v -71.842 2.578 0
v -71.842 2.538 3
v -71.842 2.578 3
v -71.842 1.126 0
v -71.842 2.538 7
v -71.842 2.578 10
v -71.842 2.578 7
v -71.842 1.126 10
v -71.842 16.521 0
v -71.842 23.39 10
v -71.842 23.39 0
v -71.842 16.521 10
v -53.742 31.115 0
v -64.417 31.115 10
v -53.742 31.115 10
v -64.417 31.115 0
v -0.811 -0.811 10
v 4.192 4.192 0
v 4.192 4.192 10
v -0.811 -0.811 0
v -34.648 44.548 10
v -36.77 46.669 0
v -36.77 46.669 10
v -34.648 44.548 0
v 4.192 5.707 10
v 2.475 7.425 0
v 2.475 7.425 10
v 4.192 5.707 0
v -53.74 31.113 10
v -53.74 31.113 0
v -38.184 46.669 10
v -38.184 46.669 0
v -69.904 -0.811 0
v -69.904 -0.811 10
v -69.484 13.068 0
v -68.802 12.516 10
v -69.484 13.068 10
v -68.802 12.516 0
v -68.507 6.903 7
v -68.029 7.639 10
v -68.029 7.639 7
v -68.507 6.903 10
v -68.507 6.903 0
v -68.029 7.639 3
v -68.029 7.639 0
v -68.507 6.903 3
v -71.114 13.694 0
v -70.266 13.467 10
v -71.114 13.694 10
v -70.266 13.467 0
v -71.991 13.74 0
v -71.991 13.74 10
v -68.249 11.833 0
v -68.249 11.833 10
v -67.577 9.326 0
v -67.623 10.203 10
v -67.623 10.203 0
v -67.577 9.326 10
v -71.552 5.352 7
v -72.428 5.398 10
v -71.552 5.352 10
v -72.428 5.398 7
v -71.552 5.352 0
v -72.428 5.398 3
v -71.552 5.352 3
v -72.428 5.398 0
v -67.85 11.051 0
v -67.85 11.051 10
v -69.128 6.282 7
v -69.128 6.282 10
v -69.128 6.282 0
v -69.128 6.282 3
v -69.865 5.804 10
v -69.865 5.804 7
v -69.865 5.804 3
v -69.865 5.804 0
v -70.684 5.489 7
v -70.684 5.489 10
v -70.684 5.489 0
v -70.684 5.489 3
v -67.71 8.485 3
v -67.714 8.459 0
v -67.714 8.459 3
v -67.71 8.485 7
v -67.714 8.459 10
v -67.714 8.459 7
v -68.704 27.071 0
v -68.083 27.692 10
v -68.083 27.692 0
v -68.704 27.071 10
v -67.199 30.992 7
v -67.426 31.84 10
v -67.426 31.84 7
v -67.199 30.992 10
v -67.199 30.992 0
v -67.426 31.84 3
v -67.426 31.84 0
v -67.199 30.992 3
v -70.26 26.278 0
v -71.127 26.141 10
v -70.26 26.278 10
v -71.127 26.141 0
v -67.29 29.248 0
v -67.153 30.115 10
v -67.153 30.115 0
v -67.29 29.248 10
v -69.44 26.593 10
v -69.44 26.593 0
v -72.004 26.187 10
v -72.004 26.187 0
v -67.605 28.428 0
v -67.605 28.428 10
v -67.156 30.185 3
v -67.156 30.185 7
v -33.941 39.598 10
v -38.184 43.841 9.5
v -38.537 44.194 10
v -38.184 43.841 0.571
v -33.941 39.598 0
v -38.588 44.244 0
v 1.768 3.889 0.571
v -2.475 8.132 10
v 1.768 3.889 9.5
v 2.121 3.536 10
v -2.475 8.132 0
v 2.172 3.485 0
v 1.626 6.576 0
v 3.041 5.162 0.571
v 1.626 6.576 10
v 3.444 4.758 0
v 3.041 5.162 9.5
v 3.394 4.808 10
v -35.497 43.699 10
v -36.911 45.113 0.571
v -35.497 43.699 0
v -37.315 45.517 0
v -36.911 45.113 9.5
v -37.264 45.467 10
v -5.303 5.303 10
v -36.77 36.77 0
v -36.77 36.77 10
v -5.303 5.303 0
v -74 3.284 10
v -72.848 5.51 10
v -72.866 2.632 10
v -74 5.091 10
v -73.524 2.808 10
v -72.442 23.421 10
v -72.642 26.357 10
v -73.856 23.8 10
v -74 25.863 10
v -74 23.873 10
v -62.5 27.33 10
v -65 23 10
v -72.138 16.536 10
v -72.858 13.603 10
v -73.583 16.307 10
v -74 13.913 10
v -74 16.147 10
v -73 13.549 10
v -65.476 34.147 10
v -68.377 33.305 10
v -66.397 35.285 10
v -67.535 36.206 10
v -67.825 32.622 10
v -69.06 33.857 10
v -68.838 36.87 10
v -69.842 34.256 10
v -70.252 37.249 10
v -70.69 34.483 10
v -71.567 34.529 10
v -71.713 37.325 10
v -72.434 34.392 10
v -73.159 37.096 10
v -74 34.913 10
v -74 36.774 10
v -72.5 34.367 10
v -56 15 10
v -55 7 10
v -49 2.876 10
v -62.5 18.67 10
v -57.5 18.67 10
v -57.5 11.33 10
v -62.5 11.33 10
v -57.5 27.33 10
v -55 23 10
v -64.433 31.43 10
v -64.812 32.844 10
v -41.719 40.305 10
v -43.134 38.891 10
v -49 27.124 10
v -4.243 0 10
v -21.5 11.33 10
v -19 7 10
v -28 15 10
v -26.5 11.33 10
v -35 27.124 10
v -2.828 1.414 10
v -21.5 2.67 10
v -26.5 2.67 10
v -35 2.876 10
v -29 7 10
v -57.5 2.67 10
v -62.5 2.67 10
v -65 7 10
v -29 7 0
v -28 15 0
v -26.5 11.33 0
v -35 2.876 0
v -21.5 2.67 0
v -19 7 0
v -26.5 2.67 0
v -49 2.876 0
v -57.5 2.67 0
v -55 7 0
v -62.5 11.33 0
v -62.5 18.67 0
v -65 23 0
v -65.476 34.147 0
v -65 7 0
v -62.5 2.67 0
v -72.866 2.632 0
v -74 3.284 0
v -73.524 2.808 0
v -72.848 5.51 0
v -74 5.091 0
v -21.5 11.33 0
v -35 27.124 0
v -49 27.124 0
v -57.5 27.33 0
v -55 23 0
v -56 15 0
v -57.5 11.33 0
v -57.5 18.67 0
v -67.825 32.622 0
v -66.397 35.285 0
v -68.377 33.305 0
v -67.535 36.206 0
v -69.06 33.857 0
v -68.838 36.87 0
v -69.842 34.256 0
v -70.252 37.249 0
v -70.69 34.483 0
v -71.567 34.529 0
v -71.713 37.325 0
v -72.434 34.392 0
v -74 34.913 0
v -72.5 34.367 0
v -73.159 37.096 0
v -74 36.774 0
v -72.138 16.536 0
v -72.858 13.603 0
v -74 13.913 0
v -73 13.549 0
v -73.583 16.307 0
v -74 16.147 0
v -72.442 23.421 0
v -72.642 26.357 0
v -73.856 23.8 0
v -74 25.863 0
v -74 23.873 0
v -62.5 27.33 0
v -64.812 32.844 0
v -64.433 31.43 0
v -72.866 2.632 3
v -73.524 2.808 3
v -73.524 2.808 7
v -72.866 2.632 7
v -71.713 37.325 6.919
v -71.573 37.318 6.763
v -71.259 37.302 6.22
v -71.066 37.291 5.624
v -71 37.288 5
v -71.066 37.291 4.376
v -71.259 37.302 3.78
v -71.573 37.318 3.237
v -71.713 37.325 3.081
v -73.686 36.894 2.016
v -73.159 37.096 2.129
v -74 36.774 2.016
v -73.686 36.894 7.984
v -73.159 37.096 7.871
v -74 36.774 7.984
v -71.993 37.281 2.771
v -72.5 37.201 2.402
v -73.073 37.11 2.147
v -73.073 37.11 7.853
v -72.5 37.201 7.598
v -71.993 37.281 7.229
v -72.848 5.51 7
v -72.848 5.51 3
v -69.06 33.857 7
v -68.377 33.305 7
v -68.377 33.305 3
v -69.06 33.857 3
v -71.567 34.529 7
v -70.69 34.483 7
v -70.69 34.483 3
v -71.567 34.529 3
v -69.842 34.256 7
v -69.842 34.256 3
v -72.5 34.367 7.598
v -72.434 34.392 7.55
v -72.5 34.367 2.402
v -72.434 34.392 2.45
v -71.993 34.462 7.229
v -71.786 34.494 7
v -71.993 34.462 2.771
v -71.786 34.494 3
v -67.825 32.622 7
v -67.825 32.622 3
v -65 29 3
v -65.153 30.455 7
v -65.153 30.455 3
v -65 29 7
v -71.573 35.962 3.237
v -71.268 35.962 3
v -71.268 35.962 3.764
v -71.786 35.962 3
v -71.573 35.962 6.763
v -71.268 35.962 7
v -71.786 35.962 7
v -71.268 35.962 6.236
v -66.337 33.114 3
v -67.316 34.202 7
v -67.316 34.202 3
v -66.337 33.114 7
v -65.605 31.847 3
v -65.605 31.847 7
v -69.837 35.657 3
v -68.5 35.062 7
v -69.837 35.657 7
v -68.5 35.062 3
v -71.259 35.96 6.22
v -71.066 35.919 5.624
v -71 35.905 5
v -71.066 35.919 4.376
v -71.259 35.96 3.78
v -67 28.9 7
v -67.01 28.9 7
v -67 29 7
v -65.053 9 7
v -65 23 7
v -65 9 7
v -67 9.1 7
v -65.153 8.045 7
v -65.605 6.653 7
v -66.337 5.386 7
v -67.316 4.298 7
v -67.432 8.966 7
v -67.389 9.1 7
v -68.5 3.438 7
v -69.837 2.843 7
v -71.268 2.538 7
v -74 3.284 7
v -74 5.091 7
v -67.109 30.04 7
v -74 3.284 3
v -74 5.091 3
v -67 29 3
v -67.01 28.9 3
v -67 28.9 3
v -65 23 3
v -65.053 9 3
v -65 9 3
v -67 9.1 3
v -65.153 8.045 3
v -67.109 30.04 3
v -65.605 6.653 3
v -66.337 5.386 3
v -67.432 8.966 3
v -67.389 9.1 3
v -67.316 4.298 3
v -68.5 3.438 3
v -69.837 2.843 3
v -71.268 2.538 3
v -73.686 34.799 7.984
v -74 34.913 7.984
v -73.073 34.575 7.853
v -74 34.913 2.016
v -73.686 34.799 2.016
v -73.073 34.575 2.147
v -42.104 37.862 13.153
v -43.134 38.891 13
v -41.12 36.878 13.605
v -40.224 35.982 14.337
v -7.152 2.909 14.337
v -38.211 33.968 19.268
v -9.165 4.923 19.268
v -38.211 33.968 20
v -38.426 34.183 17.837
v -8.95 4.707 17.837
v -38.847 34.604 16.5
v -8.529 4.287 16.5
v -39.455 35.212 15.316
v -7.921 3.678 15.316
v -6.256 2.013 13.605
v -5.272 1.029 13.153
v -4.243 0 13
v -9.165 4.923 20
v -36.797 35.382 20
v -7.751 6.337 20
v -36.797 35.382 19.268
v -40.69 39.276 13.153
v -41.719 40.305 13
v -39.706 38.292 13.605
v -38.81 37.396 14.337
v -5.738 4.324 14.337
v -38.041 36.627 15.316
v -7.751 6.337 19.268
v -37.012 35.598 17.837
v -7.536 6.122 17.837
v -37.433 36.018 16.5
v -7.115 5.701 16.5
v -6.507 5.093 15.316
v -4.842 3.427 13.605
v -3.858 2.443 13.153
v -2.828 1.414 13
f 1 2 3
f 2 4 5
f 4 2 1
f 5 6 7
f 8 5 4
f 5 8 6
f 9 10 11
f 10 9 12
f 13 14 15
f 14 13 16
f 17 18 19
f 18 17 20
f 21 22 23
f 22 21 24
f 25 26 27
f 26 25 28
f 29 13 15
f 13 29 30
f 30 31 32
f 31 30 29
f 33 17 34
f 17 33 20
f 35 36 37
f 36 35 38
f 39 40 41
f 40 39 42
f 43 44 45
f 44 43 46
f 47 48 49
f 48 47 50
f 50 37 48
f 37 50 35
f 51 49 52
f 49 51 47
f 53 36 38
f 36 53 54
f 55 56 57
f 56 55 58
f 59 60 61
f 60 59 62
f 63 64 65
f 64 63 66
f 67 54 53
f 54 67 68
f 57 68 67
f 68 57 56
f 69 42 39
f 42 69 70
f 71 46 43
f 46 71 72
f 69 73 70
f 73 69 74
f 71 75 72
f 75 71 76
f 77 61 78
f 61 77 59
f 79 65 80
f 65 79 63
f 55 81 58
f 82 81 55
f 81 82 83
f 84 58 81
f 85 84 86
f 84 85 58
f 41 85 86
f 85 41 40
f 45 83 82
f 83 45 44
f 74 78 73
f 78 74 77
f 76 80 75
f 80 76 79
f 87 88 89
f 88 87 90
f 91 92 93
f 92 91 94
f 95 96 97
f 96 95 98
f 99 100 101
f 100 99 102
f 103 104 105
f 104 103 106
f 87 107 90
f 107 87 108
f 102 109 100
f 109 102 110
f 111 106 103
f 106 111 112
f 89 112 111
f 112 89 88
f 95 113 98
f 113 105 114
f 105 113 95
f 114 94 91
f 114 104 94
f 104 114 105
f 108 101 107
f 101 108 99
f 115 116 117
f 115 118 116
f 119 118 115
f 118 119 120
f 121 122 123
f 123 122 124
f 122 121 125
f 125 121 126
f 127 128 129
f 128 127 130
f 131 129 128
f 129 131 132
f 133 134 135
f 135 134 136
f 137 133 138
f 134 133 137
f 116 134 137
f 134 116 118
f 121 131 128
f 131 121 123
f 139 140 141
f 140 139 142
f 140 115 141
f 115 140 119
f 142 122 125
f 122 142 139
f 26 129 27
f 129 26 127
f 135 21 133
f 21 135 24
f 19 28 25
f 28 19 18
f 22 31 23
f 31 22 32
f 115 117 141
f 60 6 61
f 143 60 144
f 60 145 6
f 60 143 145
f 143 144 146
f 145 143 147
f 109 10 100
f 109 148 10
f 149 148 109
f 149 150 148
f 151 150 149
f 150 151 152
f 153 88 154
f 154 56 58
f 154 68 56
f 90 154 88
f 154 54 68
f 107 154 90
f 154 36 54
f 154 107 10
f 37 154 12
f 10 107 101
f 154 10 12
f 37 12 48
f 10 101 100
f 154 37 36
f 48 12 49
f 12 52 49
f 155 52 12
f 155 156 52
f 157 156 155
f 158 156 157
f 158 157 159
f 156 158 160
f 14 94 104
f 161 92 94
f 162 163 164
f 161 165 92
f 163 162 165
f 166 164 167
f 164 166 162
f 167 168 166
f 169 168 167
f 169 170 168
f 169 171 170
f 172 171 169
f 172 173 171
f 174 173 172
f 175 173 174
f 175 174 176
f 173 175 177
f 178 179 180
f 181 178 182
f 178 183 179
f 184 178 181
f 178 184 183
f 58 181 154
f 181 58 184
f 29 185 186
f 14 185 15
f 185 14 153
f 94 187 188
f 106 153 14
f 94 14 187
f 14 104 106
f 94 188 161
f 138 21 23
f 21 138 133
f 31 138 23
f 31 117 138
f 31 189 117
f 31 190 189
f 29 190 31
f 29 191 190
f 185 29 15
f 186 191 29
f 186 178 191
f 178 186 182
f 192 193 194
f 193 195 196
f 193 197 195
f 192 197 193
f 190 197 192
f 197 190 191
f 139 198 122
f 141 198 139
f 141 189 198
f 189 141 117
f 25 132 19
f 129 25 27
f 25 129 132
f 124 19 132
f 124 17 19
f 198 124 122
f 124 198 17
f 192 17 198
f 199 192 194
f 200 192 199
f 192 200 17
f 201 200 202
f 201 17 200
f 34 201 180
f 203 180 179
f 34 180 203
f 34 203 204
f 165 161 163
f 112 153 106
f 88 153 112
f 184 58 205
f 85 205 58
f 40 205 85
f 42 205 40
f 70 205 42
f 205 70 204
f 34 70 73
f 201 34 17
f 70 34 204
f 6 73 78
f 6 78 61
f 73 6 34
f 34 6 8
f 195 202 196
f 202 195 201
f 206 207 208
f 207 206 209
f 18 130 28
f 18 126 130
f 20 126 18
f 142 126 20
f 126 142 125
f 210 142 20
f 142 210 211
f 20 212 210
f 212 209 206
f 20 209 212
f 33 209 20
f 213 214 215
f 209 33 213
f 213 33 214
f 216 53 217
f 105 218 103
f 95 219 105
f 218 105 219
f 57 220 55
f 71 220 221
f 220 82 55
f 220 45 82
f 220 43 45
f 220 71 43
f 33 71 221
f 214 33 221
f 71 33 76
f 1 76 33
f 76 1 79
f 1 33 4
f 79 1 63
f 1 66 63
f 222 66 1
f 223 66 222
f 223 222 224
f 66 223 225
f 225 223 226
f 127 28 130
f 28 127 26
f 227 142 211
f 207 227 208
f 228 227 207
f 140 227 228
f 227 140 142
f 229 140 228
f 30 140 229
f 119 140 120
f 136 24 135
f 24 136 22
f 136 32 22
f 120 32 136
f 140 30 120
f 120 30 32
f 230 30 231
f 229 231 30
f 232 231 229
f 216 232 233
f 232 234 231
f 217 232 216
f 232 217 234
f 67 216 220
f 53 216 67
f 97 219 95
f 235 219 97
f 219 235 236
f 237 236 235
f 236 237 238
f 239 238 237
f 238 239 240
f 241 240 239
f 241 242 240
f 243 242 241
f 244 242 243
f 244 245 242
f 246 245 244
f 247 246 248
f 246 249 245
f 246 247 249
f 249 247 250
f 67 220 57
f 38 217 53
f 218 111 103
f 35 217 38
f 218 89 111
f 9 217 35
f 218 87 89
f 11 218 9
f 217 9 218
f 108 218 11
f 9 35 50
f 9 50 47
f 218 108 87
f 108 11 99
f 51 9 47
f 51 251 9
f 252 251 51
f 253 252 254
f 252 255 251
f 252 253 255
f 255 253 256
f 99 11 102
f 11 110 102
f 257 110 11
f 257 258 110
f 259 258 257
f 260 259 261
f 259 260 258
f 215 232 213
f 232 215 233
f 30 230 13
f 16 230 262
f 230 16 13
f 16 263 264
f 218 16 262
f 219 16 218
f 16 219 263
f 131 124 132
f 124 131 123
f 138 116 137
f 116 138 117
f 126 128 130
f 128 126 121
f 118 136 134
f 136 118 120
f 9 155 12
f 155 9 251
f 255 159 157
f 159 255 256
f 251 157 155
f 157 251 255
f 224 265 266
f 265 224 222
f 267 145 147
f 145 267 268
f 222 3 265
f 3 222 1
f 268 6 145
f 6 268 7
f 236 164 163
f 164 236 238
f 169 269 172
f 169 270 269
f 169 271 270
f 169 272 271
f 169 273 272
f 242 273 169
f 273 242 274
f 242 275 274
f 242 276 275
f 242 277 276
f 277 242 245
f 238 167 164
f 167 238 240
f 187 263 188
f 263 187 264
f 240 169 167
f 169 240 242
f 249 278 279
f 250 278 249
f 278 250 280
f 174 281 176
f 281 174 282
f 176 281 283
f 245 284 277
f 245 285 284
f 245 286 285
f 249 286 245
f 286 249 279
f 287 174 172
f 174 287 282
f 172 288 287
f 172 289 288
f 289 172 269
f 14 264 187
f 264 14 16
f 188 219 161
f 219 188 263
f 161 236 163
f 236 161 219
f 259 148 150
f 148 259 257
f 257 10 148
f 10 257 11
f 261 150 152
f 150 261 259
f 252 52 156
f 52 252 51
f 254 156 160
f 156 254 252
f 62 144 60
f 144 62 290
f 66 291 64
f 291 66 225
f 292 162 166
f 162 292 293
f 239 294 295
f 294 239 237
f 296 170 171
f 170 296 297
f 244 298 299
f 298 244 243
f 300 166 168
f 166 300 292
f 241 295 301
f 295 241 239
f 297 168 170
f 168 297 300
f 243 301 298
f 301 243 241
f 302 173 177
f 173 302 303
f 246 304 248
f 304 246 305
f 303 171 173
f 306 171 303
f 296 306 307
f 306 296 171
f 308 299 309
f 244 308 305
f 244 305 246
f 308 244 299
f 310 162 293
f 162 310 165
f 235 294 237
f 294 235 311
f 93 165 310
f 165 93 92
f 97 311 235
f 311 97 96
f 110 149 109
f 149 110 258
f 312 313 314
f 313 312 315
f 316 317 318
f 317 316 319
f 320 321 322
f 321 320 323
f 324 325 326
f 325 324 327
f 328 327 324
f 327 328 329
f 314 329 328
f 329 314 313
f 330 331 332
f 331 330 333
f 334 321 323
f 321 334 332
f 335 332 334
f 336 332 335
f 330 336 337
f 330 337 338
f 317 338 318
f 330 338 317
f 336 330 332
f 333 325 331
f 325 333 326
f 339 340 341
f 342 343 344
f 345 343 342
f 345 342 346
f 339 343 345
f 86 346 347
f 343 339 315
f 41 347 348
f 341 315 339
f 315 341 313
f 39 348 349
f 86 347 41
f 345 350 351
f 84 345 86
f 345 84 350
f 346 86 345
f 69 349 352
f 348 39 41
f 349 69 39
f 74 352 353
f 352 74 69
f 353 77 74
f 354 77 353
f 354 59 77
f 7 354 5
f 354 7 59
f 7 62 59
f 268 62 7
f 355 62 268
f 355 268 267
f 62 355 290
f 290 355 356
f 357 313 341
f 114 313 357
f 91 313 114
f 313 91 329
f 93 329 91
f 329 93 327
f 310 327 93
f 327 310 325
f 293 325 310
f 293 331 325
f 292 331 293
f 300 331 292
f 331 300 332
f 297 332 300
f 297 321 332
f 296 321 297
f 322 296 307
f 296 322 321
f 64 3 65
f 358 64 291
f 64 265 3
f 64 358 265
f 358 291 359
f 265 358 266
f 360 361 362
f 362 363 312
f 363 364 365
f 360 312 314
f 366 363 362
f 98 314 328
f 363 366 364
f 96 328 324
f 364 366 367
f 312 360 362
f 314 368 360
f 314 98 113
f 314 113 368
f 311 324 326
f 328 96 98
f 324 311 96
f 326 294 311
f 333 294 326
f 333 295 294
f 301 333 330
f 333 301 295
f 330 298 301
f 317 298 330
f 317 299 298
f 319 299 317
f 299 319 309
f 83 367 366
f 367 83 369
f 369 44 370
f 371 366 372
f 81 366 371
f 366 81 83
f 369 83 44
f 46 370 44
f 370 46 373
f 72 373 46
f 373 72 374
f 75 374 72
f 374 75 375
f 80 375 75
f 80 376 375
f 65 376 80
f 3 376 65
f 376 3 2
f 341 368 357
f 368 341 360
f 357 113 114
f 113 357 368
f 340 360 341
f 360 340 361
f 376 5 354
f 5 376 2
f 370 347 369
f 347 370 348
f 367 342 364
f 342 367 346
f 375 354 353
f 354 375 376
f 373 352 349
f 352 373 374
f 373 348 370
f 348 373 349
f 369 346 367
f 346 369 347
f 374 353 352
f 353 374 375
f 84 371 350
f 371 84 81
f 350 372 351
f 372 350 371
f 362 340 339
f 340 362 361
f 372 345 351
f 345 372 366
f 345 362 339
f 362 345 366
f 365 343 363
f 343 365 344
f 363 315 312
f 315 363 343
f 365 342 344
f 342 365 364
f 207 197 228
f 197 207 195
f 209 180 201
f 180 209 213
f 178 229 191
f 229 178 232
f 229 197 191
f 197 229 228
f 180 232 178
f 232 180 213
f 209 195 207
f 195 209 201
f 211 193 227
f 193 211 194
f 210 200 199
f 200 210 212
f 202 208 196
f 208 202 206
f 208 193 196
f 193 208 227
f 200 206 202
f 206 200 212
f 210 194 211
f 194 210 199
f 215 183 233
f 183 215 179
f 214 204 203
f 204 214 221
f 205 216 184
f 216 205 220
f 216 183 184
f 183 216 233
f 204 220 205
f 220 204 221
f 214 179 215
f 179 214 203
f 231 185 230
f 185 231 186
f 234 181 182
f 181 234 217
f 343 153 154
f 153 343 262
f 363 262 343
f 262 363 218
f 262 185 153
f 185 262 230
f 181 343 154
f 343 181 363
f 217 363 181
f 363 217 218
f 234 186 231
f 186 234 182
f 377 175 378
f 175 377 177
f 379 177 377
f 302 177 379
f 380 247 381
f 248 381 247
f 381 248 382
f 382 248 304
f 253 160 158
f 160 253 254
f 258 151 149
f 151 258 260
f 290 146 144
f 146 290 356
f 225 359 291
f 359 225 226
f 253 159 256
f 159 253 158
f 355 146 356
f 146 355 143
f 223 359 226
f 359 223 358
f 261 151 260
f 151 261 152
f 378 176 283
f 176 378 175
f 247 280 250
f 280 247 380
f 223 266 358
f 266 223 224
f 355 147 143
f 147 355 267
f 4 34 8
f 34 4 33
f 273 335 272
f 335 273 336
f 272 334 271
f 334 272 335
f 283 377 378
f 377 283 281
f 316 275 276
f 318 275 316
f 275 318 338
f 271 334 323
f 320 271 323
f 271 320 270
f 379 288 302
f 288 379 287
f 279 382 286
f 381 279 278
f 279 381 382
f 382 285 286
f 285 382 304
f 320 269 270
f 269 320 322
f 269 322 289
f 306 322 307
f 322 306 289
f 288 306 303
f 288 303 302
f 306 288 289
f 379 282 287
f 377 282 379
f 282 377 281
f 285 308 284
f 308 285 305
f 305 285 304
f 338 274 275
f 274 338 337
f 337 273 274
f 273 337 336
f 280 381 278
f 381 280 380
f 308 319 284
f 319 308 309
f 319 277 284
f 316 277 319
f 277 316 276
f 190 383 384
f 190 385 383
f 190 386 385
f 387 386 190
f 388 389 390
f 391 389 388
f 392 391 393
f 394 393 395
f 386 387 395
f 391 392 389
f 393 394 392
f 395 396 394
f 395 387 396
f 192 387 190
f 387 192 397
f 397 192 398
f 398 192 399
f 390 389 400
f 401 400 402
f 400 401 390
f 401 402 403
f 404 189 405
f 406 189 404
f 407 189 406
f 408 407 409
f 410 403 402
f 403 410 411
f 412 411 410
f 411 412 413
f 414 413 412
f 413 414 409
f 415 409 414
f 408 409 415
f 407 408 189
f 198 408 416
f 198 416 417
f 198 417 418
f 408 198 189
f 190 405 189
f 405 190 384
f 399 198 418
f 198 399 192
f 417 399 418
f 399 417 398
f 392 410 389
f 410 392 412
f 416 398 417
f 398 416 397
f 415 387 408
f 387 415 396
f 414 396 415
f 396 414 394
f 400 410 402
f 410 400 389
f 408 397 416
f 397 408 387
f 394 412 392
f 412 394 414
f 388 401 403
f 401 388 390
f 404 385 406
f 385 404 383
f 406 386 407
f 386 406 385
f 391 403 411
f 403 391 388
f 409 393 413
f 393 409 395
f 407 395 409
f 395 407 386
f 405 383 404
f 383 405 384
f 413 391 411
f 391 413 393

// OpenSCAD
// file: lcd-support-A.scad
// PRUSA iteration3
// lcd-support-A
// GNU GPL v3
// Josef Průša <iam@josefprusa.cz> and contributors
// http://www.reprap.org/wiki/Prusa_Mendel
// http://prusamendel.org




module body(){

difference() {
    
    union(){
        translate( [ -55, -2 , 0 ] ) cube( [ 69 , 81 , 10 ] ); 
    }
    
    union (){

    // outer body shape
    translate( [ -69.6, 32, -1 ] ) rotate([0,0,45]) cube( [ 60 , 53 , 15 ] ); 
    translate( [ 13.7, 89.7, -1 ] ) rotate([0,0,135]) cube( [ 60 , 42 , 15 ] );
    translate( [ -19, -9, -1 ] ) cube( [ 60 , 9 , 15 ] );   
    translate( [ 7, -3, -1 ] ) cube( [ 60 , 68 , 16 ] );  
    translate( [ -16, 60, -1 ] ) cube( [ 60 , 50 , 15 ] );
    translate( [ -41, -45, -1 ] ) rotate([0,0,45]) cube( [ 60 , 80 , 13 ] );  
        
    // threaded rods opening
    translate( [ -44 , 57.5 , -1 ] ) cylinder( h = 17, r = 4.2, $fn=30);  
    translate( [ -29 , 71.9 , -1 ] ) cylinder( h = 17, r = 4.2, $fn=30);  

    // pcb cout out
    translate( [ 4 , 1.5 , -1 ] ) cube( [ 1.8 , 56.5 , 17 ] ); 
    translate( [ 0 , 7.5 , -1 ] ) cube( [ 5.8 , 44.5 , 17 ] ); 
    translate( [ 4.8 , 3.5 , -1 ] ) cube( [ 5.8 , 52.5 , 17 ] );

    translate( [ 8 , -5 , -1 ] ) rotate([0,0,45]) cube( [ 5 , 5 , 17 ] );
    translate( [ 8 , 58 , -1 ] ) rotate([0,0,45]) cube( [ 5 , 5 , 17 ] );
        
    }

    // pcb inserts
    translate( [ 4, 3 , 8 ] ) rotate([45,0,0]) cube( [ 1.8 , 5 , 5 ] ); 
    translate( [ 4, 56.5 , 8 ] ) rotate([45,0,0]) cube( [ 1.8 , 5 , 5 ] );     
    translate( [ 4, 3 , -5 ] ) rotate([45,0,0]) cube( [ 1.8 , 5 , 5 ] ); 
    translate( [ 4, 56.5 , -5 ] ) rotate([45,0,0]) cube( [ 1.8 , 5 , 5 ] );     
    
}

 
difference(){
    union(){
        translate( [ -44 , 57.5 , 0 ] ) cylinder( h = 10, r = 7, $fn=30); 
        translate( [ -29 , 71.9 , 0 ] ) cylinder( h = 10, r =7 , $fn=30); 
    }
        translate( [ -44 , 57.5 , -1 ] ) cylinder( h = 17, r = 4.2, $fn=30);
        translate( [ -29 , 71.9 , -1 ] ) cylinder( h = 17, r = 4.2, $fn=30);
}
}



module ziptie()
{
difference()
{
  union(){
    difference(){
        translate( [ -72 , 29 , 3 ] ) cylinder( h = 4, r = 7, $fn=30);
        translate( [ -72 , 29 , 3 ] ) cylinder( h = 4, r = 5, $fn=30);
    }
    difference(){
        translate( [ -72 , 9.5 , 3 ] ) cylinder( h = 4, r = 7, $fn=30);
        translate( [ -72 , 11 , 3 ] ) cylinder( h = 4, r = 5, $fn=30); 
    }
    }
    translate( [ -80 , 9.1 , 3 ] )  cube( [ 15 , 19.8 , 4 ] );  
    }
    
    translate( [ -67 , 9 , 3 ] )  cube( [ 2 , 20 , 4 ] ); 
}
    




difference() {
    
rotate([0,0,45]) body();

// lightening holes
translate( [ -42 , 15 , -1 ] ) cylinder( h = 15, r = 14, $fn=6);  
translate( [ -24 , 7 , -1 ] ) cylinder( h = 15, r = 5, $fn=6);  
translate( [ -60 , 7 , -1 ] ) cylinder( h = 15, r = 5, $fn=6);  
translate( [ -60 , 23 , -1 ] ) cylinder( h = 15, r = 5, $fn=6);  
    
// threaded rods corners
translate( [ -71 , 28.5 , -1 ] ) rotate([0,0,70]) cube( [ 5 , 10 , 15 ] );   
translate( [ -71 , 7.5 , -1 ] ) rotate([0,0,70]) cube( [ 5 , 10 , 15 ] );      
translate( [ -80 , 29, -1 ] ) rotate([0,0,-70]) cube( [ 5 , 10 , 15 ] );   
translate( [ -82 , 7.5 , -1 ] ) rotate([0,0,-70]) cube( [ 5 , 10 , 15 ] );      
translate( [ -86 , 0 , -1 ] ) cube( [ 12 , 50 , 15 ] );  
translate( [ -83 , -16 , -1 ] ) rotate([0,0,45]) cube( [ 20 , 20 , 15 ] );  

ziptie();
// ziptie head cutout
translate( [ -74 , 38 , 5 ] ) rotate([90,0,0]) cylinder( h = 5, r = 3, $fn=30);  
    


}
// main file
// PRUSA iteration3
// lcd-support-B
// GNU GPL v3
// Josef Průša <iam@josefprusa.cz> and contributors
// http://www.reprap.org/wiki/Prusa_Mendel
// http://prusamendel.org

include<lcd-support-A.scad>;

//SD card cover
rotate([0,0,45]) difference(){
translate( [ -3 , 3 , 10 ] )  cube( [ 2 , 55 , 10 ] ); 
translate( [ -4 , 3 , 20 ] ) rotate([0,90,0]) cylinder( h = 4, r = 7, $fn=30); 
translate( [ -4 , 58 , 20 ] ) rotate([0,90,0]) cylinder( h = 4, r = 7, $fn=30); 
}
